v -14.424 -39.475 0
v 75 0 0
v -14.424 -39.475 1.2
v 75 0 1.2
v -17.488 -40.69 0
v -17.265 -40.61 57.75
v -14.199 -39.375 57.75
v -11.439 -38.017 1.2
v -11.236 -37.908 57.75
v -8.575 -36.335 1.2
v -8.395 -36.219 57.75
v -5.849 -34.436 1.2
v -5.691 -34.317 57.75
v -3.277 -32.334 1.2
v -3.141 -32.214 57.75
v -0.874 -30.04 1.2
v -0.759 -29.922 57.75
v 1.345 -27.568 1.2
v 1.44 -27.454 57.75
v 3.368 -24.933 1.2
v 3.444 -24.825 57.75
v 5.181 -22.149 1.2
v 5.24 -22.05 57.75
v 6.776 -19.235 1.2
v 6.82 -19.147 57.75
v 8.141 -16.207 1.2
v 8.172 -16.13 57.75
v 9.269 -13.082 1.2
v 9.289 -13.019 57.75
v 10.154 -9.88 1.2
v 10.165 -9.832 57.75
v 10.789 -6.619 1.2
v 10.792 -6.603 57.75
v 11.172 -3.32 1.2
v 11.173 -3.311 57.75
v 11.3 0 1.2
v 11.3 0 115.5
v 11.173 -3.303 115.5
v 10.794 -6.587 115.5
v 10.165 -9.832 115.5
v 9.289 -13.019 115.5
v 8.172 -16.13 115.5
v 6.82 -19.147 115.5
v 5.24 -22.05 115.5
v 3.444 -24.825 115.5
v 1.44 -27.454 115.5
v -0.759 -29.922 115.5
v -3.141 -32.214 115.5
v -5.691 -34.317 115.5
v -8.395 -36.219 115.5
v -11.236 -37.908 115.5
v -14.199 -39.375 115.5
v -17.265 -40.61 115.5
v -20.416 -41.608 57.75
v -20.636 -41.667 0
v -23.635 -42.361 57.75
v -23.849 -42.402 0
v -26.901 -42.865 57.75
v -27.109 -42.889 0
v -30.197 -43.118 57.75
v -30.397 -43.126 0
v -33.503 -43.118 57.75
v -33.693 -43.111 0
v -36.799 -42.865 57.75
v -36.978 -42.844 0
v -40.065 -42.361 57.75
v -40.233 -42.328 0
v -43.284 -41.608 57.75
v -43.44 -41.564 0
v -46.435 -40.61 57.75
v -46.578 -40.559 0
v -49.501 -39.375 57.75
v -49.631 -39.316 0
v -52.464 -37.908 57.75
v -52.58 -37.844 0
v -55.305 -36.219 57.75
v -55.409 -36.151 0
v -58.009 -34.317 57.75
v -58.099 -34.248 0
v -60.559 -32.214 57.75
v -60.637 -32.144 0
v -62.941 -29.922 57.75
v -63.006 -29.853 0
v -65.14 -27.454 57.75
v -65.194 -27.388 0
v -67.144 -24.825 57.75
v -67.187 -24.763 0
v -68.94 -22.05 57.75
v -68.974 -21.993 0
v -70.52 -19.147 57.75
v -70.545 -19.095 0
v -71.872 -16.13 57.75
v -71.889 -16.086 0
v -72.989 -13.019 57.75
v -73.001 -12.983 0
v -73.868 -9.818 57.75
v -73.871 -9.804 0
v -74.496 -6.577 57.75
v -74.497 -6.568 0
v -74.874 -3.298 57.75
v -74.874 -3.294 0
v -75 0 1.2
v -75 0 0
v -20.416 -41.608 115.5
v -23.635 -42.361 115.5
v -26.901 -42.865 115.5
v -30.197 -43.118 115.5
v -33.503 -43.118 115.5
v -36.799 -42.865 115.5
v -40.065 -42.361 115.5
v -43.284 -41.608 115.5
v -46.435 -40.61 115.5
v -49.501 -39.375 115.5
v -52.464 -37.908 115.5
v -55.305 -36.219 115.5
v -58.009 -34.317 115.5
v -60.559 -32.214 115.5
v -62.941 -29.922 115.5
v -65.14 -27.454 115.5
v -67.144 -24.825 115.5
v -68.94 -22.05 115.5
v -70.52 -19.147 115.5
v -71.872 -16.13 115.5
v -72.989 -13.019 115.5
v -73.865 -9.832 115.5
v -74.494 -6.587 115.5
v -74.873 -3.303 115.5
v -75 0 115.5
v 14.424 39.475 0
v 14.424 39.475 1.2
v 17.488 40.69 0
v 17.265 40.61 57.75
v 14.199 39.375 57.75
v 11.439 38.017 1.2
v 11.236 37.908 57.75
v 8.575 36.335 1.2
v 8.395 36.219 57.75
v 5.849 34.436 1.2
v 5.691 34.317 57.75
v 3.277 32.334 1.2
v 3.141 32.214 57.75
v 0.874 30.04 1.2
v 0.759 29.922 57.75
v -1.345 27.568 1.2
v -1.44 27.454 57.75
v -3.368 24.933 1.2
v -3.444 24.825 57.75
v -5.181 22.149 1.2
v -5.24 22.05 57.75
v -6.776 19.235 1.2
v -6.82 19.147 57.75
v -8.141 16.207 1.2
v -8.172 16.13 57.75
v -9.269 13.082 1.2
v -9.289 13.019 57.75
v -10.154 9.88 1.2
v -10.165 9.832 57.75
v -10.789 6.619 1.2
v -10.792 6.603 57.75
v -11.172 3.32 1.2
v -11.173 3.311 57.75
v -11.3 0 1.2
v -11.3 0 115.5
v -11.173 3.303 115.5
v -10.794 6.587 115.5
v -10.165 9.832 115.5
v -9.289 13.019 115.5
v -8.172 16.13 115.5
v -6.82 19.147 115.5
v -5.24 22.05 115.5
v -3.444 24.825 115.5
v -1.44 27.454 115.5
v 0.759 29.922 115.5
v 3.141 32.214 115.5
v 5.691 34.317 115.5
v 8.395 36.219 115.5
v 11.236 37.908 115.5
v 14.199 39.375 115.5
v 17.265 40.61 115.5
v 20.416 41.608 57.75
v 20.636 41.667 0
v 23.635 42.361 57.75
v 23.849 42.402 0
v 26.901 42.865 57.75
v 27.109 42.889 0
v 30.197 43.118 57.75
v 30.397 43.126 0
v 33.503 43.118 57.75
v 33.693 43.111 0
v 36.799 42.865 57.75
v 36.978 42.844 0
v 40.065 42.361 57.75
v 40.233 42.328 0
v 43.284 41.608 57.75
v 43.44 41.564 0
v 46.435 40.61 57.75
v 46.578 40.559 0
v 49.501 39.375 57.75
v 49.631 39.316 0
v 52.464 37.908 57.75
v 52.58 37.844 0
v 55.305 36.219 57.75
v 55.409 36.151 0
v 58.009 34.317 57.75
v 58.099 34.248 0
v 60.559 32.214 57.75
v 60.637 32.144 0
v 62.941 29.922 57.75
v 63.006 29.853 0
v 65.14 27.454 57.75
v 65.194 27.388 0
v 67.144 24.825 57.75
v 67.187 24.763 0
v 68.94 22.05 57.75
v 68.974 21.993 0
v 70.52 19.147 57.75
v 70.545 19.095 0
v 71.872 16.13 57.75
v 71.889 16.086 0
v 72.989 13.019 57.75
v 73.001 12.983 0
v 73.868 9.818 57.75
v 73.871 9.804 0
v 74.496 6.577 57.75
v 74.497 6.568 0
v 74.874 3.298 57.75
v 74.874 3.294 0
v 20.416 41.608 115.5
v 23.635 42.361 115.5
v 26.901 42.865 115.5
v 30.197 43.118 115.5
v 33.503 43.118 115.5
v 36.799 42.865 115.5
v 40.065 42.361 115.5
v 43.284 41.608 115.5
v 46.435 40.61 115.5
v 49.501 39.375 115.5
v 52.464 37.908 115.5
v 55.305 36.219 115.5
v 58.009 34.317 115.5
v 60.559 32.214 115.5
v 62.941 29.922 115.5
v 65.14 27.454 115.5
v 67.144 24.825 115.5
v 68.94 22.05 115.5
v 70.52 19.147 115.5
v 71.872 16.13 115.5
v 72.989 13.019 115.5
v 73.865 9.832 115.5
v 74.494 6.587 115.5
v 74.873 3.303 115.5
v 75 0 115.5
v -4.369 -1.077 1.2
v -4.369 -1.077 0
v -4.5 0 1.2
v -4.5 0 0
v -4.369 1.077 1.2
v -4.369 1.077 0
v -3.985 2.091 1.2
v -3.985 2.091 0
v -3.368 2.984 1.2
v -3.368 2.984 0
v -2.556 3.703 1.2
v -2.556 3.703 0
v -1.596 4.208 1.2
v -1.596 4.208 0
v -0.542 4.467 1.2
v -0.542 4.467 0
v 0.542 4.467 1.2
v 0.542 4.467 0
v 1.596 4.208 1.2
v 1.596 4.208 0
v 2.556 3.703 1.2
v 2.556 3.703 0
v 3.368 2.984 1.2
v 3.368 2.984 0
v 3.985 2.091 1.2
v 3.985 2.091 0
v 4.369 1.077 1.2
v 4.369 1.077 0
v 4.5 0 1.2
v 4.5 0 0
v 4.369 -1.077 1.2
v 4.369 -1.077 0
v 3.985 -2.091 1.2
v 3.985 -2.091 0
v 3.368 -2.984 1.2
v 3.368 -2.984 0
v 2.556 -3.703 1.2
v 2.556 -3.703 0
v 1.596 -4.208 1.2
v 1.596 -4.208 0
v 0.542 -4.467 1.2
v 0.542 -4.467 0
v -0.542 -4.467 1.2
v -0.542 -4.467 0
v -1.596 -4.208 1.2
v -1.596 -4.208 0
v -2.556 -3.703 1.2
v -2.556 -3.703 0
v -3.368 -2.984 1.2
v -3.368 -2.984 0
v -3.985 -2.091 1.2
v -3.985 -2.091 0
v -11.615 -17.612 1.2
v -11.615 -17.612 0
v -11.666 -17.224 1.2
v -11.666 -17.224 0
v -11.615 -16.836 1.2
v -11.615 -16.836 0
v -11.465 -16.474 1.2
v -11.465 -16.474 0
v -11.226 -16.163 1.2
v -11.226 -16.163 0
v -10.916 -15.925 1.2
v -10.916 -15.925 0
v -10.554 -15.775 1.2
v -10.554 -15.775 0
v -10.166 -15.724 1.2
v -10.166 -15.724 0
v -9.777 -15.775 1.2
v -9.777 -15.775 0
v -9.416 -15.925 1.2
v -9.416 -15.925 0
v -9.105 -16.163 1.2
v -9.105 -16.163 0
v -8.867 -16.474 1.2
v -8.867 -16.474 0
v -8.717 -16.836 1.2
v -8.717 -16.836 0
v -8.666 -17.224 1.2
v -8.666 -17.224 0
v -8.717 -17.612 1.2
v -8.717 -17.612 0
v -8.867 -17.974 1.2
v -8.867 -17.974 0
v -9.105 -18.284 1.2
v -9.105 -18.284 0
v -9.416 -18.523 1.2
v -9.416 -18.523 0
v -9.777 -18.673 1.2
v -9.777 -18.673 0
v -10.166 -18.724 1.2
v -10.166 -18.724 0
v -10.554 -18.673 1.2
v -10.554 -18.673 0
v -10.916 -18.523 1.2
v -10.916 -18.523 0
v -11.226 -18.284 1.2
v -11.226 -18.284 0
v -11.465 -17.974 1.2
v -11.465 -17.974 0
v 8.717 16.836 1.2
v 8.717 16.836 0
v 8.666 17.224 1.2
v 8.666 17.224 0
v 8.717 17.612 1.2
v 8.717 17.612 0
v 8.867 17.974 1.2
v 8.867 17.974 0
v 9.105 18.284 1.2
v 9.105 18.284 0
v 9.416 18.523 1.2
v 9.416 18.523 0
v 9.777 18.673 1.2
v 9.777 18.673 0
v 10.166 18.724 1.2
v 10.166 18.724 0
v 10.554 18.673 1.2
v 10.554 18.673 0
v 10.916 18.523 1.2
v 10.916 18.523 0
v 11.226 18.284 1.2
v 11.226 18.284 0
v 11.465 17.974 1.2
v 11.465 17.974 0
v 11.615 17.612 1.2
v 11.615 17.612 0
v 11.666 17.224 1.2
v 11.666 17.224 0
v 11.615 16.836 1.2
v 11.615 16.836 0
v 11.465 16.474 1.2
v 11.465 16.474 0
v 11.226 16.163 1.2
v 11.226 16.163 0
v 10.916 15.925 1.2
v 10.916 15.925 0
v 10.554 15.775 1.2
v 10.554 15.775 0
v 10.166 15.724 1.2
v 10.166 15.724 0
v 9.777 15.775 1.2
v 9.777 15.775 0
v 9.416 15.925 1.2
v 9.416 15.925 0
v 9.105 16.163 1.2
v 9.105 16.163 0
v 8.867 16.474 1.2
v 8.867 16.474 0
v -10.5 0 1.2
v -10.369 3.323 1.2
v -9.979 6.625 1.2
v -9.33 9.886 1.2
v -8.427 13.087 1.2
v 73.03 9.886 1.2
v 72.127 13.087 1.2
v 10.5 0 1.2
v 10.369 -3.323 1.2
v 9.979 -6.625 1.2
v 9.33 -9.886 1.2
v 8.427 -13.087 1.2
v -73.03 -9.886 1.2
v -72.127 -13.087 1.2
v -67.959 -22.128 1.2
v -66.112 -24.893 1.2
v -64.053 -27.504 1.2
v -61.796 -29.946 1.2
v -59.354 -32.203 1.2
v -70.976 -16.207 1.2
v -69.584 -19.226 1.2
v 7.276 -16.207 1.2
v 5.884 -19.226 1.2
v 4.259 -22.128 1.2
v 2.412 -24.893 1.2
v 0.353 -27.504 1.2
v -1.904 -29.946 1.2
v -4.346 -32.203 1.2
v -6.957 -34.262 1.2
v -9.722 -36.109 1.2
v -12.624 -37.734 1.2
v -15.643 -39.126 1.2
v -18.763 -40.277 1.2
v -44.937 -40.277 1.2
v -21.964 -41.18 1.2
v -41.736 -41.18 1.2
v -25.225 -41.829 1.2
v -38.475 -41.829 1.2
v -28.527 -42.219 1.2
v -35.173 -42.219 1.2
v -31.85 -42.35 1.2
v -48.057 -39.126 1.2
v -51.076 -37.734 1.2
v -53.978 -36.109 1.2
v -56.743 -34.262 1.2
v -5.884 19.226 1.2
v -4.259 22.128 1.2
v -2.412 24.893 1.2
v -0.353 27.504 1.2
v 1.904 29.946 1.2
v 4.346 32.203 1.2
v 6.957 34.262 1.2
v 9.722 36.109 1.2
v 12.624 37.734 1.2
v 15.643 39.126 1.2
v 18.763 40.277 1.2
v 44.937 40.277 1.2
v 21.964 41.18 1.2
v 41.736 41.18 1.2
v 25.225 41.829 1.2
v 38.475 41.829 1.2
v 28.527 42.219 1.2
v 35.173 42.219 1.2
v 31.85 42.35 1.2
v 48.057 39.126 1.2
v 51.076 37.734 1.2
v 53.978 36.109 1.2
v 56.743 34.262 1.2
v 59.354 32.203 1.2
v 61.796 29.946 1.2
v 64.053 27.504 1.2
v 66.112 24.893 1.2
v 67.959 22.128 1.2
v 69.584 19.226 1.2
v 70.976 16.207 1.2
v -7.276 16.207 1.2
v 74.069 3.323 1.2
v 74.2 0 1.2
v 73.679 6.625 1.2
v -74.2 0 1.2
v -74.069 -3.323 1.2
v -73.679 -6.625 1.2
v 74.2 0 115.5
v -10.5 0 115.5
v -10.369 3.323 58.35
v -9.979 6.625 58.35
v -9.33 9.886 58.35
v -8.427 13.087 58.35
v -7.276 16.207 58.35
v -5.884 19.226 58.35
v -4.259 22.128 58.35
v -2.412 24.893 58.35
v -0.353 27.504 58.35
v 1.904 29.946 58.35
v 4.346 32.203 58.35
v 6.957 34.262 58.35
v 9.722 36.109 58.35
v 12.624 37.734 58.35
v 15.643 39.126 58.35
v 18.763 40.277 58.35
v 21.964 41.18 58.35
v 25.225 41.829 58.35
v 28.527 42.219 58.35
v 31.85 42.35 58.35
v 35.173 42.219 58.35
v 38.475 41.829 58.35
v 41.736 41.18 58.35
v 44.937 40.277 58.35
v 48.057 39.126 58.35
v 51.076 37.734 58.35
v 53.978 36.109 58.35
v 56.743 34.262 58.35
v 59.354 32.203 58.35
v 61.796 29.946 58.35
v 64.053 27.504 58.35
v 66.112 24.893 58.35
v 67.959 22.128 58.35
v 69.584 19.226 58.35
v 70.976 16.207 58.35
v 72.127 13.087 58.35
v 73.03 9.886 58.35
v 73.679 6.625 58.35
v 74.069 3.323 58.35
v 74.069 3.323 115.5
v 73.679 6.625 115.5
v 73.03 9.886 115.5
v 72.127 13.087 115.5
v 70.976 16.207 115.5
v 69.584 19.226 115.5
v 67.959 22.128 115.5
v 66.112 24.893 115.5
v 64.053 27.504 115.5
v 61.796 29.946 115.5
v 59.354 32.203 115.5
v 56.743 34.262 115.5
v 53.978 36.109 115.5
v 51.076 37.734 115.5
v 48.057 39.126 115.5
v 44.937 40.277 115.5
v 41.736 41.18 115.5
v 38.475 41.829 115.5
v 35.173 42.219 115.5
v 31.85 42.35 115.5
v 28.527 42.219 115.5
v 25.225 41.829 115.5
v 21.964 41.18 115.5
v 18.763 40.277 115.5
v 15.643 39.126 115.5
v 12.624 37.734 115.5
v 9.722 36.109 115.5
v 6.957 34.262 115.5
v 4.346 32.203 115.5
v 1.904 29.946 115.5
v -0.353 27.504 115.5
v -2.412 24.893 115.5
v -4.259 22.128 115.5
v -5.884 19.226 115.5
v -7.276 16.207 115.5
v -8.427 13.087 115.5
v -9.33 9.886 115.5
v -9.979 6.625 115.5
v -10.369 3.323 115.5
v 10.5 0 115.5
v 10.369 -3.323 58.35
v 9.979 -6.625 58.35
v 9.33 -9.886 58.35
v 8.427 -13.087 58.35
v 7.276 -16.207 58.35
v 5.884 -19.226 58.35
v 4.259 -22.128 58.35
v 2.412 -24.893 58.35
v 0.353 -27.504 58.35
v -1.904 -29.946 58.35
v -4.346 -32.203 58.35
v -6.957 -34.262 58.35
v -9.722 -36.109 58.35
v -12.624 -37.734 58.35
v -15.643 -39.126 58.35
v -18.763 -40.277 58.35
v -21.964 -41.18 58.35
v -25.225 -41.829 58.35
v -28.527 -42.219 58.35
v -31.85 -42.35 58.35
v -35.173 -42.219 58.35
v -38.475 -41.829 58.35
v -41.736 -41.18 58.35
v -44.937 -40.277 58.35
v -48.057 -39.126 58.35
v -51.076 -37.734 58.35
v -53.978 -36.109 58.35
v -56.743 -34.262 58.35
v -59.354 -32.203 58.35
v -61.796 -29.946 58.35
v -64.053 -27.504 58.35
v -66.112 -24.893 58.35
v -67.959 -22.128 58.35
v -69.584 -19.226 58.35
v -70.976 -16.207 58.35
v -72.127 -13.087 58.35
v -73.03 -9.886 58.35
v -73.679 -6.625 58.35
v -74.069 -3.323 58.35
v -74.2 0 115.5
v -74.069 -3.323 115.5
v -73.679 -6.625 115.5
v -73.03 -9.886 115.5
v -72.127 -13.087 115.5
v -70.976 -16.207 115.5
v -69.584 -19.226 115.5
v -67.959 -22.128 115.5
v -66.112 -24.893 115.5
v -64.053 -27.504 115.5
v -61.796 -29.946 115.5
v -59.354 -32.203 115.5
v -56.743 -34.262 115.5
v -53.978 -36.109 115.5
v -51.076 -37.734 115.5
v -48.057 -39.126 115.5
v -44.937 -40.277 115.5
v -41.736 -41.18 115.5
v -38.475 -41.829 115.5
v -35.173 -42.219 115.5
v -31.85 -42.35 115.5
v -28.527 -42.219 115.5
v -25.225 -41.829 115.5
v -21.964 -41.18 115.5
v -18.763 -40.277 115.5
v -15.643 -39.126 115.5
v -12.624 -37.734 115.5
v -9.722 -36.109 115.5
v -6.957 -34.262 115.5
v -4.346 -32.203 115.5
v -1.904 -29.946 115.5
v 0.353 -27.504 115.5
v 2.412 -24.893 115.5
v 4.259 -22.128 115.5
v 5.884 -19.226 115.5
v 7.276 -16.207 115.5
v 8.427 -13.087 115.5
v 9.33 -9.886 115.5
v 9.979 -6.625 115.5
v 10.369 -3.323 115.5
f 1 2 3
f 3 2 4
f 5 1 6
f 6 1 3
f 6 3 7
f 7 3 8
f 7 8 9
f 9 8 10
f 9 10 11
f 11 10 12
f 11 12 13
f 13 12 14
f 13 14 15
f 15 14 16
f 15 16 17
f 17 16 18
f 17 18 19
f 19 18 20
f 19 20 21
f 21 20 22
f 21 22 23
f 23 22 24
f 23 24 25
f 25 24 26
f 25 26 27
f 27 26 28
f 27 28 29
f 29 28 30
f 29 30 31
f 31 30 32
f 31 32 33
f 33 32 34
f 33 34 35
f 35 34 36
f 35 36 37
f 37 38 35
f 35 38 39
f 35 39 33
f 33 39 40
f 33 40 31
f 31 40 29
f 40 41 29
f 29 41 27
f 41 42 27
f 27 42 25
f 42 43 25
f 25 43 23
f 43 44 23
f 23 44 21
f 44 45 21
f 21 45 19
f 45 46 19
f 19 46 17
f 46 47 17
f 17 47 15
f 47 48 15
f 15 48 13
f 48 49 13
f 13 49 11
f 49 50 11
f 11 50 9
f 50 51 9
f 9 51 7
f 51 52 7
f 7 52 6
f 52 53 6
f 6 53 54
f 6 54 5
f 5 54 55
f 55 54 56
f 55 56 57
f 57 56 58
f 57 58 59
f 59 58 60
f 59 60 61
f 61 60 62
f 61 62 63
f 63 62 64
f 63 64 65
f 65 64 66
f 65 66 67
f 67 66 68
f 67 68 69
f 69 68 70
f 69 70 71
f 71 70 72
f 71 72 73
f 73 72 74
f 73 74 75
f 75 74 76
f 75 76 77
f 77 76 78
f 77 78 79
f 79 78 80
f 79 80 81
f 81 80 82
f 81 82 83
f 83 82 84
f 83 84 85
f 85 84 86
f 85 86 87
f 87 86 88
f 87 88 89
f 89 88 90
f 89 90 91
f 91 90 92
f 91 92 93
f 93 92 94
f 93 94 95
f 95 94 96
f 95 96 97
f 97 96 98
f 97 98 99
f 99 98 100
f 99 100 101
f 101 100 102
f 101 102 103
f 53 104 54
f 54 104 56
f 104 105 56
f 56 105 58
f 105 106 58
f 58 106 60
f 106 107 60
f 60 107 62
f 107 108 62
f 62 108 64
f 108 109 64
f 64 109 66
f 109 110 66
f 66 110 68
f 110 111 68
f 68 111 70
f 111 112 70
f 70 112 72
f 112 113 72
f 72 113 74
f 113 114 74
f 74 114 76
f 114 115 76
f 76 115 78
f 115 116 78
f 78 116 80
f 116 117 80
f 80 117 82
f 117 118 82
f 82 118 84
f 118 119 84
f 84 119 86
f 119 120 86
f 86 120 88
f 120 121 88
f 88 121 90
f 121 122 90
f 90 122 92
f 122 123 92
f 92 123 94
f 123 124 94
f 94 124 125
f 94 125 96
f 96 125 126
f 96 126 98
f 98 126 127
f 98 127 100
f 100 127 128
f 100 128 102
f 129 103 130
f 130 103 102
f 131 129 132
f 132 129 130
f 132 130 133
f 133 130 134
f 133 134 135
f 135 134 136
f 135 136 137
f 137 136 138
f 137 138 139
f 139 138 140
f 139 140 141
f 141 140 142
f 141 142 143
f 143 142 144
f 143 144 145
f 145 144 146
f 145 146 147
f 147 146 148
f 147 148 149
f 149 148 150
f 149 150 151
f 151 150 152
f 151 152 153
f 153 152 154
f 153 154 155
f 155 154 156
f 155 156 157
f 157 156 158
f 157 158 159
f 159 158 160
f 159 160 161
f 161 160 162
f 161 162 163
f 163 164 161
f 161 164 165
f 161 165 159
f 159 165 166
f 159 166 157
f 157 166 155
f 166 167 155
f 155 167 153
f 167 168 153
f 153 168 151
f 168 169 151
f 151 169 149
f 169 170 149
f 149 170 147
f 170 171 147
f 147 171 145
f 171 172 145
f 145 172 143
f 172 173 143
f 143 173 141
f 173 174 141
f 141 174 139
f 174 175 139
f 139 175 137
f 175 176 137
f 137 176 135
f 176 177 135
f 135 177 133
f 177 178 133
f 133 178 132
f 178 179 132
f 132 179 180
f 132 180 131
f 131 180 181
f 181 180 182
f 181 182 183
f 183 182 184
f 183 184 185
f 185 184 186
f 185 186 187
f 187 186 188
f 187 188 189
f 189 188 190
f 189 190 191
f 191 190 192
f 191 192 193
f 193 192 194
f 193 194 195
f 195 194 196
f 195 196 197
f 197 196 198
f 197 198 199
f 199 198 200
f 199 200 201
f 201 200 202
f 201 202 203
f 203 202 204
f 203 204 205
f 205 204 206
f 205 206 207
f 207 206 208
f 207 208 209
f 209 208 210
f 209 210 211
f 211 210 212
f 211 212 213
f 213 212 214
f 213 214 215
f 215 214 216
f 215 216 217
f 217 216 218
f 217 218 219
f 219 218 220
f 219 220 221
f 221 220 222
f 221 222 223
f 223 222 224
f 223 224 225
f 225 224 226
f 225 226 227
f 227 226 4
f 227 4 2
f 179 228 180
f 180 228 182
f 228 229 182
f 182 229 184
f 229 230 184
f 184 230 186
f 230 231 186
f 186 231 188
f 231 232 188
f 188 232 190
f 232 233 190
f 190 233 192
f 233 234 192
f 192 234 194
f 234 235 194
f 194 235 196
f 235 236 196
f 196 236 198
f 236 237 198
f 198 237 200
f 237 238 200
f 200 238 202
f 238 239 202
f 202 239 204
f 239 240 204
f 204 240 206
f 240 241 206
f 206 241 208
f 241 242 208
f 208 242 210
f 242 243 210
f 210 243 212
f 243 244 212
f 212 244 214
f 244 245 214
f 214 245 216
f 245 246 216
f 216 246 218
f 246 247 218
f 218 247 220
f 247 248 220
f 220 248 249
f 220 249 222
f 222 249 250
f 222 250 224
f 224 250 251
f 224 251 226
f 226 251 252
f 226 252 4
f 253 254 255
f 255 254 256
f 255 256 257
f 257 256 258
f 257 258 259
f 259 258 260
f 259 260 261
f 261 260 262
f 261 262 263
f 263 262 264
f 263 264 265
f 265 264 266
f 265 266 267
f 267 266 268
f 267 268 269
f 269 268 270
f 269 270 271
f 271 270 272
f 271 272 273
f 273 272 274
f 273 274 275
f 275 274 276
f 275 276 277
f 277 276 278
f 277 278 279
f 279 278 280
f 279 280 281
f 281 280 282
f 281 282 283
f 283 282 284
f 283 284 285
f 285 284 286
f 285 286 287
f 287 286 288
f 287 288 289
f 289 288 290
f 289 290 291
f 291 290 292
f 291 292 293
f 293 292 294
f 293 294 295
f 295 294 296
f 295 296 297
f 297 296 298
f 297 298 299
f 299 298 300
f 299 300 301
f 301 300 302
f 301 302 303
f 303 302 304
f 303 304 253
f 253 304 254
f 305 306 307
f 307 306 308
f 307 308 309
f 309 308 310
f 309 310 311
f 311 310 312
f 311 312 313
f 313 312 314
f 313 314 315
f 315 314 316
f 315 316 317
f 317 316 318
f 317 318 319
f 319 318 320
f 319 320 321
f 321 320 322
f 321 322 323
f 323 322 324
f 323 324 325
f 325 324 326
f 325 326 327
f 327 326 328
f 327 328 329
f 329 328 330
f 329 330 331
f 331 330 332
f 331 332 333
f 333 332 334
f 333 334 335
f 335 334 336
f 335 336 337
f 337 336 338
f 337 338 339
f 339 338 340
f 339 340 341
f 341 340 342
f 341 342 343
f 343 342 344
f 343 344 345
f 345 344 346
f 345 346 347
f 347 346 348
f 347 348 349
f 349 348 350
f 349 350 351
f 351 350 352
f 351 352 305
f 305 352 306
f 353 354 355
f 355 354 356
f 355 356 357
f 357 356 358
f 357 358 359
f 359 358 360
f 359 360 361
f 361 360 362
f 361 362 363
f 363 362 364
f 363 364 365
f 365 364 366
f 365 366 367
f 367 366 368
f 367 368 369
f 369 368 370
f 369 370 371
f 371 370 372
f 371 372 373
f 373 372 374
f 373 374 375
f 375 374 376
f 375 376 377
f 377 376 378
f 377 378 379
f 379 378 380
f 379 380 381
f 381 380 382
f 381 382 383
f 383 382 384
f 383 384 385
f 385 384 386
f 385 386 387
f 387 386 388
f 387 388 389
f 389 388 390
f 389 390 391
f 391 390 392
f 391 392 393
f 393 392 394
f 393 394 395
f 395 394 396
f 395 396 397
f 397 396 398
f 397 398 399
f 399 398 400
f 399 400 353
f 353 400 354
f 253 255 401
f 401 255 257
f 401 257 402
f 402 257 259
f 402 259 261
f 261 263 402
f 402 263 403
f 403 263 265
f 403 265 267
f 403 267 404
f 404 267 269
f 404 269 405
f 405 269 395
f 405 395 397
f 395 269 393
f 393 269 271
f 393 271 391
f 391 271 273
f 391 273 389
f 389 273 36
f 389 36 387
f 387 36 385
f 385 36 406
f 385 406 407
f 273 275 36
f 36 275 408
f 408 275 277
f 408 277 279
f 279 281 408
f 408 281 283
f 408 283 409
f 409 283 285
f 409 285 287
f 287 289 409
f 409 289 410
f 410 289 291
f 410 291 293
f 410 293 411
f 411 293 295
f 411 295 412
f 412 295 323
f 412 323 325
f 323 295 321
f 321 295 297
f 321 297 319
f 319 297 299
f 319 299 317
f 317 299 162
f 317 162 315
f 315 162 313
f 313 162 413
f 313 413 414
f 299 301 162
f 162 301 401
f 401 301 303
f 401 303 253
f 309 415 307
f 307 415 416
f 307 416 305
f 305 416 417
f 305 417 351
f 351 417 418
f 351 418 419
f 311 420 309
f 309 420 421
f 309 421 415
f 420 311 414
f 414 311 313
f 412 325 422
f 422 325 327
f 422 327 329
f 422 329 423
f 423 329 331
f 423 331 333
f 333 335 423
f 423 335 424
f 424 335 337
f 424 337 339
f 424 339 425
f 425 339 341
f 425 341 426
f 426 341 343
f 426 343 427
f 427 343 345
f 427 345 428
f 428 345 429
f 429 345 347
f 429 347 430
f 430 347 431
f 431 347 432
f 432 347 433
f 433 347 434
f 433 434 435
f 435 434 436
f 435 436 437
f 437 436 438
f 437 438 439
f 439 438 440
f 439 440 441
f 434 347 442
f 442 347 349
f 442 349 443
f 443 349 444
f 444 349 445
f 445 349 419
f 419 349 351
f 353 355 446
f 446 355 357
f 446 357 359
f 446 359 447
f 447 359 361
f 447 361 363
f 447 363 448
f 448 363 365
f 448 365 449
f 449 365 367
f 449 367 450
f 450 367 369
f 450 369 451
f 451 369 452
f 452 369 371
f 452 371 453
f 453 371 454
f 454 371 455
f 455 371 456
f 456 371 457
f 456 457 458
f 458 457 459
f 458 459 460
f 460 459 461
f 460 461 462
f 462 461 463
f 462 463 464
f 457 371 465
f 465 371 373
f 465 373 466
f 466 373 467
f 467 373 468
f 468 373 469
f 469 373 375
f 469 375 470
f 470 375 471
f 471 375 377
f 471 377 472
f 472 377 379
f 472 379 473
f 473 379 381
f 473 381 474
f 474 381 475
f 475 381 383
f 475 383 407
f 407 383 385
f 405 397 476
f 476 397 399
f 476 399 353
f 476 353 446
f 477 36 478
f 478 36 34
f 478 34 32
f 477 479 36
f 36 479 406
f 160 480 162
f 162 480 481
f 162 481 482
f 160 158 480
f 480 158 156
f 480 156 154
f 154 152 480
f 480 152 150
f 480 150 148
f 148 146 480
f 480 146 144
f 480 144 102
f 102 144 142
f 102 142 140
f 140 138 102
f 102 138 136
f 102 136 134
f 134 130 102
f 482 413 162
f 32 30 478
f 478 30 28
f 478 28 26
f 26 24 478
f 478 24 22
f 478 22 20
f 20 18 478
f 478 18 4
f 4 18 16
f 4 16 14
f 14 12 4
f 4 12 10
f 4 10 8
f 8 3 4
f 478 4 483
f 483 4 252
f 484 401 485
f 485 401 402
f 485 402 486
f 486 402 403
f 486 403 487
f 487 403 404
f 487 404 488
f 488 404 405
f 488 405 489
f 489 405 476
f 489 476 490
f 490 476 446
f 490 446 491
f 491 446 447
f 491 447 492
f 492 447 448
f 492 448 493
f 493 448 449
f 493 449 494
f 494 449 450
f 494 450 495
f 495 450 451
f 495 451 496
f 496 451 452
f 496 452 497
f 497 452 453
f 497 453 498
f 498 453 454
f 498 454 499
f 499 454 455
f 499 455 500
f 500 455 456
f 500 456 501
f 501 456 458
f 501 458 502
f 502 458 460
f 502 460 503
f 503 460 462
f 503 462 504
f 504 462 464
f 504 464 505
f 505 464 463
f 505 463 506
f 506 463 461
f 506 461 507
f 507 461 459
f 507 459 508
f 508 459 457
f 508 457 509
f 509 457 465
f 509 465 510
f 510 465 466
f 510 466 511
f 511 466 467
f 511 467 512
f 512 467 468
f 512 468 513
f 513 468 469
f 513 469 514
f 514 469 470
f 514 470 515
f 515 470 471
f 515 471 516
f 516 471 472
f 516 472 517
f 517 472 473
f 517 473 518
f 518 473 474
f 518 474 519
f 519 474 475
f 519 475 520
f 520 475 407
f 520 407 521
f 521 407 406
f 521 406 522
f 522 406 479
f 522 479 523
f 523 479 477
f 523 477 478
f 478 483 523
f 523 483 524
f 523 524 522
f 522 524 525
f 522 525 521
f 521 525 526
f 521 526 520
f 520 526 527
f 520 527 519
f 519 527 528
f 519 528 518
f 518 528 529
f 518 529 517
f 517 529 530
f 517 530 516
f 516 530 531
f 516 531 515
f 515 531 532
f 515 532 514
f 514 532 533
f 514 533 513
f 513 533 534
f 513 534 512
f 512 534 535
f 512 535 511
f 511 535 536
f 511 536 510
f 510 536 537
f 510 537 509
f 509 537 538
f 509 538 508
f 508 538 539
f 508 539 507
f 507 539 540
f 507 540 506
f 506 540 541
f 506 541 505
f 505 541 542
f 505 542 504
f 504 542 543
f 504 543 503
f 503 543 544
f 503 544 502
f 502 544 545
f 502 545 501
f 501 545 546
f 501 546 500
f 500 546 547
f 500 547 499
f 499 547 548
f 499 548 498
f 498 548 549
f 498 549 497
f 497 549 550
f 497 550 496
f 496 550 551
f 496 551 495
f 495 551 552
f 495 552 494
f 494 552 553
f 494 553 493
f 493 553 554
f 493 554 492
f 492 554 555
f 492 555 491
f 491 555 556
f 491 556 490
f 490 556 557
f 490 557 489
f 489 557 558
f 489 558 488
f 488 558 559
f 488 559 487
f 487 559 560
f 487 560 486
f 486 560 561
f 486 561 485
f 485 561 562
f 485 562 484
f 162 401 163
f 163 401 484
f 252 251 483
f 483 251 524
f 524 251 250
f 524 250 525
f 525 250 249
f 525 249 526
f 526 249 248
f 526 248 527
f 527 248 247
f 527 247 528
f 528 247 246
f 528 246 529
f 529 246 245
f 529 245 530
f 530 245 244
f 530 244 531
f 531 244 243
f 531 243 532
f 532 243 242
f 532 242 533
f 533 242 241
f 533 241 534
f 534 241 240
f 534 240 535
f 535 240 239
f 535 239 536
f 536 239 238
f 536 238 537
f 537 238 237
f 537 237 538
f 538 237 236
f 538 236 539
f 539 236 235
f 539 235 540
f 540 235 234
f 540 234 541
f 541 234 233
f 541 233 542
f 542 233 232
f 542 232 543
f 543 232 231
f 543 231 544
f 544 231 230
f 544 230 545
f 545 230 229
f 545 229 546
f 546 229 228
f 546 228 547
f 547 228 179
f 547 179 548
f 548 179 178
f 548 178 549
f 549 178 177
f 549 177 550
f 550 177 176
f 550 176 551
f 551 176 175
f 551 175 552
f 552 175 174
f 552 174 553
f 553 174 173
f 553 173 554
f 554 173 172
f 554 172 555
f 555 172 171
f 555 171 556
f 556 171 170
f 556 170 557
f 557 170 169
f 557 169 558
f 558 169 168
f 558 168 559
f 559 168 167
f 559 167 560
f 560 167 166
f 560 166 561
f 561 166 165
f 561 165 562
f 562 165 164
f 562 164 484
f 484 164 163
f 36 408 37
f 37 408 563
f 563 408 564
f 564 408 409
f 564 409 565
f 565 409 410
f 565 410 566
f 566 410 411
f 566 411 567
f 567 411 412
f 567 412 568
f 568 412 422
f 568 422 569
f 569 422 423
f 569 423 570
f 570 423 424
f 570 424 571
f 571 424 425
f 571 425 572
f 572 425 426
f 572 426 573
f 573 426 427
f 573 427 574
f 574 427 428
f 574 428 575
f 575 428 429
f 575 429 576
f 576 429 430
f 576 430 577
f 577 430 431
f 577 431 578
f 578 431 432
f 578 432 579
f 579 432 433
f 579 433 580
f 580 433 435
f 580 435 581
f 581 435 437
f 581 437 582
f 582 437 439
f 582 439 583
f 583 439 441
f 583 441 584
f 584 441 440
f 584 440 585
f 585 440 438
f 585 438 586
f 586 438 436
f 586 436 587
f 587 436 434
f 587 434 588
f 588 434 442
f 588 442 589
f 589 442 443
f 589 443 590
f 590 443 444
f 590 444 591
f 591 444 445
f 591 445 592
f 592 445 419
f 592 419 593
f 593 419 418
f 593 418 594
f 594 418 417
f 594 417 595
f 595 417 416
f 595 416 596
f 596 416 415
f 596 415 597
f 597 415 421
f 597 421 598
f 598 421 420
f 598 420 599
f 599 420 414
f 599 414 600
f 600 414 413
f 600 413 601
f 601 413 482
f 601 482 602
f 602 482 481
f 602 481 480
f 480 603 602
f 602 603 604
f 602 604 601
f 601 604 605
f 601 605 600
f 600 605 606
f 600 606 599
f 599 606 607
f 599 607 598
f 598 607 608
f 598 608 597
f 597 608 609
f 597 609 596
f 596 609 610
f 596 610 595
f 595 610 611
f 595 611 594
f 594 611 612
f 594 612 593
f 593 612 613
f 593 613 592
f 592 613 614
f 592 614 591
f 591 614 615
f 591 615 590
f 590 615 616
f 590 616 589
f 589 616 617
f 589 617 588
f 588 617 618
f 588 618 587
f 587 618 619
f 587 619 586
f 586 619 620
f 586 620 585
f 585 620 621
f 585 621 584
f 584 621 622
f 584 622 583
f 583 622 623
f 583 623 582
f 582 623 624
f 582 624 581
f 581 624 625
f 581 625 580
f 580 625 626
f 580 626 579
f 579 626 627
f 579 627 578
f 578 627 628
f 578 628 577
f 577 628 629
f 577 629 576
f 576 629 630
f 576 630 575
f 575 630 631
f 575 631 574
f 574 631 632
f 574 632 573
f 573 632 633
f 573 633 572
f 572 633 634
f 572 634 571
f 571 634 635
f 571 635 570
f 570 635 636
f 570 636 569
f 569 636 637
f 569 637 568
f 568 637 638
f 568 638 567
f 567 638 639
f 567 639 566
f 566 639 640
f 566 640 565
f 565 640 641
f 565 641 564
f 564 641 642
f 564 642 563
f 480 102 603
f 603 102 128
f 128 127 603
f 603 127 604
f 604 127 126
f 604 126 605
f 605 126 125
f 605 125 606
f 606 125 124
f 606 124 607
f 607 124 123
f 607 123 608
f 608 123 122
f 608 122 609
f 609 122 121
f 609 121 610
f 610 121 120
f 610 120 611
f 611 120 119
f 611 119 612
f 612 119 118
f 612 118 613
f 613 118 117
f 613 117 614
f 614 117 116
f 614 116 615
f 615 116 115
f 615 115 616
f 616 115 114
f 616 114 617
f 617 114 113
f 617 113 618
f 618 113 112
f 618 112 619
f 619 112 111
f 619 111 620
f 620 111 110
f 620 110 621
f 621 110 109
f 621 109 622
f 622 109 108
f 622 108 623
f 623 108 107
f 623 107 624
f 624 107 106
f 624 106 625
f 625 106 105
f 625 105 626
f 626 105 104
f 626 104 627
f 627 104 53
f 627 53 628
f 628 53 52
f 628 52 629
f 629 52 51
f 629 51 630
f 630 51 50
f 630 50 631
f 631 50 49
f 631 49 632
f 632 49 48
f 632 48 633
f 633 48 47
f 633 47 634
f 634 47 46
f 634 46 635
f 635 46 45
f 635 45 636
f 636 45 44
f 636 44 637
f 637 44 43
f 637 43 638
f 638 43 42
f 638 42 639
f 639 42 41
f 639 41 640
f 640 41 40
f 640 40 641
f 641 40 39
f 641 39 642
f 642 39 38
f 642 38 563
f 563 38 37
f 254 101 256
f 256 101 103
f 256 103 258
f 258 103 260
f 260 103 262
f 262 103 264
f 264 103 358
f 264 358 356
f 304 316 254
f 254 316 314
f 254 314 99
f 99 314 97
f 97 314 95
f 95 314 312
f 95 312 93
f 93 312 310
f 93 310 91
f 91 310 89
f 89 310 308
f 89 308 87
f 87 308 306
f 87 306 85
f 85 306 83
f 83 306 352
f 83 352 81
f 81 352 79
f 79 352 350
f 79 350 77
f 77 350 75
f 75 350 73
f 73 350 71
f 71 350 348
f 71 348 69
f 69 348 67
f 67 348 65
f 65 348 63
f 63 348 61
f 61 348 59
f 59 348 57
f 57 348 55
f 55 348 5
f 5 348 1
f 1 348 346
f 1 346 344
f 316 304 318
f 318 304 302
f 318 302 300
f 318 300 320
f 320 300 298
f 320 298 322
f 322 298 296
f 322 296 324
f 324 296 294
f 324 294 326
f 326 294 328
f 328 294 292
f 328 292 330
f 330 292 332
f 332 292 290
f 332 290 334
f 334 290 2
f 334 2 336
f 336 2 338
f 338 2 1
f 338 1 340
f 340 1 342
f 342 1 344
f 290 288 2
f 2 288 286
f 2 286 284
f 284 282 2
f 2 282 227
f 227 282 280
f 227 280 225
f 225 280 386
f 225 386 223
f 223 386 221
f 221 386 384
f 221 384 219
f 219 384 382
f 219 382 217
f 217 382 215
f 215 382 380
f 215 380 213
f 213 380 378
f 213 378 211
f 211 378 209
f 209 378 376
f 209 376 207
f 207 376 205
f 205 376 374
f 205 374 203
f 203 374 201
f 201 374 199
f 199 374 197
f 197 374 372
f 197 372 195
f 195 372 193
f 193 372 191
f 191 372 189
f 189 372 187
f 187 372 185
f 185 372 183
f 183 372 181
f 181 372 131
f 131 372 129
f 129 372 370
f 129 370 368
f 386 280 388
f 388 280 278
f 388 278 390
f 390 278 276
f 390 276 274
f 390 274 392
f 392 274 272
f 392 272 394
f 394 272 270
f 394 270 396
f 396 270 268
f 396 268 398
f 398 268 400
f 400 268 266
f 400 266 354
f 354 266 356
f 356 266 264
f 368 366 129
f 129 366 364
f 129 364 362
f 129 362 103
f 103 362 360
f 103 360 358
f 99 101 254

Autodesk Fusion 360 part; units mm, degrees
sketch "Turbine" plane through (0, 0, 0) normal (0, 0, 1) x (1, 0, 0) in component "Savonius Turbine"
  line L0 (10.5, 0) -> (-10.5, 0) construction
  arc A0 (74.2, 0) -> (-10.5, 0) centre (31.85, 0) ccw
  line L1 (31.85, 0) -> (74.2, 0) construction
  line L2 (31.85, 0) -> (-10.5, 0) construction
  arc A1 (-74.2, 0) -> (10.5, 0) centre (-31.85, 0) ccw
  line L3 (-31.85, 0) -> (-74.2, 0) construction
  line L4 (-31.85, 0) -> (10.5, 0) construction
  arc A2 (75, 0) -> (-11.3, 0) centre (31.85, 0) ccw
  arc A3 (-75, 0) -> (11.3, 0) centre (-31.85, 0) ccw
  line L5 (75, 0) -> (74.2, 0)
  line L6 (-75, 0) -> (-74.2, 0)
  line L7 (11.3, 0) -> (10.5, 0)
  line L8 (-10.5, 0) -> (-11.3, 0)
  line L9 (74.2, 0) -> (11.3, 0)
  line L10 (-11.3, 0) -> (-74.2, 0)
  dimension "d7" = 21
  dimension "d9" = 180
  dimension "d11" = 42.35
  dimension "d12" = 180
  dimension "d14" = 0.8
  dimension "d15" = 0.8
extrude "Extrude1" add sketch "Turbine" along normal blind 115.5 contours A0 A2 L5 L8 | A1 A3 L6 L7 makes body 1 at (-8.4391, -36.2471, 38.5) makes body 2 at (-4.9695, 22.4999, 38.5) in component "Savonius Turbine"
extrude "Extrude2" add sketch "Turbine" along normal blind 1.2 contours A0 A1 L7 L8 L9 L10 bodies 1 2 in component "Savonius Turbine"
sketch "Mounting Holes" plane through (0, 0, 0) normal (0, 0, 1) x (1, 0, 0) in component "Savonius Turbine"
  line L0 (-10.1657, -17.2238) -> (10.1657, 17.2238) construction
  circle A0 centre (-10.1657, -17.2238) radius 1.5
  circle A1 centre (10.1657, 17.2238) radius 1.5
  circle A2 centre (0, 0) radius 4.5
  dimension "d24" = 40
  dimension "d25" = 3
  dimension "d26" = 9
extrude "Extrude3" cut sketch "Mounting Holes" along normal through all bodies 1 in component "Savonius Turbine"
sketch "Base Reinforcement" plane through (0, 0, 0) normal (0, 0, 1) x (1, 0, 0) in component "Savonius Turbine"
  circle A0 centre (0, 0) radius 4.5
  circle A1 centre (-10.1657, -17.2238) radius 1.5
  circle A2 centre (10.1657, 17.2238) radius 1.5
  arc A3 (-75, 0) -> (11.3, 0) centre (-31.85, 0) ccw
  line L0 (-75, 0) -> (-11.3, 0)
  arc A4 (75, 0) -> (-11.3, 0) centre (31.85, 0) ccw
  line L1 (75, 0) -> (11.3, 0)
  line L2 (75, 0) -> (-14.4244, -39.475)
  line L3 (-75, 0) -> (14.4244, 39.475)
extrude "Extrude4" add sketch "Base Reinforcement" along normal blind 1.2 contours L0 A4 L3 | A3 L1 L2 bodies 1 in component "Savonius Turbine"
component "Savonius Turbine" placed x (1, 0, 0) y (0, 1, 0) z (0, 0, 1) at (0, 0, 0)
equation "Width = 150 mm" comment "Width of the turbine"
equation "AspectRatio = 0.77"
equation "OverlapPercent = 0.14" comment "How far the blades should overlap.  e.g. 0.10 would be 10%"
equation "Height = Width * AspectRatio"
equation "Overlap = OverlapPercent * Width"
equation "BladeDiameter = ( Width + Overlap ) / 2 - BladeThickness"
equation "d7 = Overlap"
equation "d11 = BladeDiameter / 2"
equation "BladeThickness = 0.8 mm"
equation "d14 = BladeThickness"
equation "d15 = BladeThickness"
equation "d19 = Height"
equation "BaseThickness = 1.2 mm"
equation "d22 = BaseThickness"
equation "d28 = BaseThickness"
